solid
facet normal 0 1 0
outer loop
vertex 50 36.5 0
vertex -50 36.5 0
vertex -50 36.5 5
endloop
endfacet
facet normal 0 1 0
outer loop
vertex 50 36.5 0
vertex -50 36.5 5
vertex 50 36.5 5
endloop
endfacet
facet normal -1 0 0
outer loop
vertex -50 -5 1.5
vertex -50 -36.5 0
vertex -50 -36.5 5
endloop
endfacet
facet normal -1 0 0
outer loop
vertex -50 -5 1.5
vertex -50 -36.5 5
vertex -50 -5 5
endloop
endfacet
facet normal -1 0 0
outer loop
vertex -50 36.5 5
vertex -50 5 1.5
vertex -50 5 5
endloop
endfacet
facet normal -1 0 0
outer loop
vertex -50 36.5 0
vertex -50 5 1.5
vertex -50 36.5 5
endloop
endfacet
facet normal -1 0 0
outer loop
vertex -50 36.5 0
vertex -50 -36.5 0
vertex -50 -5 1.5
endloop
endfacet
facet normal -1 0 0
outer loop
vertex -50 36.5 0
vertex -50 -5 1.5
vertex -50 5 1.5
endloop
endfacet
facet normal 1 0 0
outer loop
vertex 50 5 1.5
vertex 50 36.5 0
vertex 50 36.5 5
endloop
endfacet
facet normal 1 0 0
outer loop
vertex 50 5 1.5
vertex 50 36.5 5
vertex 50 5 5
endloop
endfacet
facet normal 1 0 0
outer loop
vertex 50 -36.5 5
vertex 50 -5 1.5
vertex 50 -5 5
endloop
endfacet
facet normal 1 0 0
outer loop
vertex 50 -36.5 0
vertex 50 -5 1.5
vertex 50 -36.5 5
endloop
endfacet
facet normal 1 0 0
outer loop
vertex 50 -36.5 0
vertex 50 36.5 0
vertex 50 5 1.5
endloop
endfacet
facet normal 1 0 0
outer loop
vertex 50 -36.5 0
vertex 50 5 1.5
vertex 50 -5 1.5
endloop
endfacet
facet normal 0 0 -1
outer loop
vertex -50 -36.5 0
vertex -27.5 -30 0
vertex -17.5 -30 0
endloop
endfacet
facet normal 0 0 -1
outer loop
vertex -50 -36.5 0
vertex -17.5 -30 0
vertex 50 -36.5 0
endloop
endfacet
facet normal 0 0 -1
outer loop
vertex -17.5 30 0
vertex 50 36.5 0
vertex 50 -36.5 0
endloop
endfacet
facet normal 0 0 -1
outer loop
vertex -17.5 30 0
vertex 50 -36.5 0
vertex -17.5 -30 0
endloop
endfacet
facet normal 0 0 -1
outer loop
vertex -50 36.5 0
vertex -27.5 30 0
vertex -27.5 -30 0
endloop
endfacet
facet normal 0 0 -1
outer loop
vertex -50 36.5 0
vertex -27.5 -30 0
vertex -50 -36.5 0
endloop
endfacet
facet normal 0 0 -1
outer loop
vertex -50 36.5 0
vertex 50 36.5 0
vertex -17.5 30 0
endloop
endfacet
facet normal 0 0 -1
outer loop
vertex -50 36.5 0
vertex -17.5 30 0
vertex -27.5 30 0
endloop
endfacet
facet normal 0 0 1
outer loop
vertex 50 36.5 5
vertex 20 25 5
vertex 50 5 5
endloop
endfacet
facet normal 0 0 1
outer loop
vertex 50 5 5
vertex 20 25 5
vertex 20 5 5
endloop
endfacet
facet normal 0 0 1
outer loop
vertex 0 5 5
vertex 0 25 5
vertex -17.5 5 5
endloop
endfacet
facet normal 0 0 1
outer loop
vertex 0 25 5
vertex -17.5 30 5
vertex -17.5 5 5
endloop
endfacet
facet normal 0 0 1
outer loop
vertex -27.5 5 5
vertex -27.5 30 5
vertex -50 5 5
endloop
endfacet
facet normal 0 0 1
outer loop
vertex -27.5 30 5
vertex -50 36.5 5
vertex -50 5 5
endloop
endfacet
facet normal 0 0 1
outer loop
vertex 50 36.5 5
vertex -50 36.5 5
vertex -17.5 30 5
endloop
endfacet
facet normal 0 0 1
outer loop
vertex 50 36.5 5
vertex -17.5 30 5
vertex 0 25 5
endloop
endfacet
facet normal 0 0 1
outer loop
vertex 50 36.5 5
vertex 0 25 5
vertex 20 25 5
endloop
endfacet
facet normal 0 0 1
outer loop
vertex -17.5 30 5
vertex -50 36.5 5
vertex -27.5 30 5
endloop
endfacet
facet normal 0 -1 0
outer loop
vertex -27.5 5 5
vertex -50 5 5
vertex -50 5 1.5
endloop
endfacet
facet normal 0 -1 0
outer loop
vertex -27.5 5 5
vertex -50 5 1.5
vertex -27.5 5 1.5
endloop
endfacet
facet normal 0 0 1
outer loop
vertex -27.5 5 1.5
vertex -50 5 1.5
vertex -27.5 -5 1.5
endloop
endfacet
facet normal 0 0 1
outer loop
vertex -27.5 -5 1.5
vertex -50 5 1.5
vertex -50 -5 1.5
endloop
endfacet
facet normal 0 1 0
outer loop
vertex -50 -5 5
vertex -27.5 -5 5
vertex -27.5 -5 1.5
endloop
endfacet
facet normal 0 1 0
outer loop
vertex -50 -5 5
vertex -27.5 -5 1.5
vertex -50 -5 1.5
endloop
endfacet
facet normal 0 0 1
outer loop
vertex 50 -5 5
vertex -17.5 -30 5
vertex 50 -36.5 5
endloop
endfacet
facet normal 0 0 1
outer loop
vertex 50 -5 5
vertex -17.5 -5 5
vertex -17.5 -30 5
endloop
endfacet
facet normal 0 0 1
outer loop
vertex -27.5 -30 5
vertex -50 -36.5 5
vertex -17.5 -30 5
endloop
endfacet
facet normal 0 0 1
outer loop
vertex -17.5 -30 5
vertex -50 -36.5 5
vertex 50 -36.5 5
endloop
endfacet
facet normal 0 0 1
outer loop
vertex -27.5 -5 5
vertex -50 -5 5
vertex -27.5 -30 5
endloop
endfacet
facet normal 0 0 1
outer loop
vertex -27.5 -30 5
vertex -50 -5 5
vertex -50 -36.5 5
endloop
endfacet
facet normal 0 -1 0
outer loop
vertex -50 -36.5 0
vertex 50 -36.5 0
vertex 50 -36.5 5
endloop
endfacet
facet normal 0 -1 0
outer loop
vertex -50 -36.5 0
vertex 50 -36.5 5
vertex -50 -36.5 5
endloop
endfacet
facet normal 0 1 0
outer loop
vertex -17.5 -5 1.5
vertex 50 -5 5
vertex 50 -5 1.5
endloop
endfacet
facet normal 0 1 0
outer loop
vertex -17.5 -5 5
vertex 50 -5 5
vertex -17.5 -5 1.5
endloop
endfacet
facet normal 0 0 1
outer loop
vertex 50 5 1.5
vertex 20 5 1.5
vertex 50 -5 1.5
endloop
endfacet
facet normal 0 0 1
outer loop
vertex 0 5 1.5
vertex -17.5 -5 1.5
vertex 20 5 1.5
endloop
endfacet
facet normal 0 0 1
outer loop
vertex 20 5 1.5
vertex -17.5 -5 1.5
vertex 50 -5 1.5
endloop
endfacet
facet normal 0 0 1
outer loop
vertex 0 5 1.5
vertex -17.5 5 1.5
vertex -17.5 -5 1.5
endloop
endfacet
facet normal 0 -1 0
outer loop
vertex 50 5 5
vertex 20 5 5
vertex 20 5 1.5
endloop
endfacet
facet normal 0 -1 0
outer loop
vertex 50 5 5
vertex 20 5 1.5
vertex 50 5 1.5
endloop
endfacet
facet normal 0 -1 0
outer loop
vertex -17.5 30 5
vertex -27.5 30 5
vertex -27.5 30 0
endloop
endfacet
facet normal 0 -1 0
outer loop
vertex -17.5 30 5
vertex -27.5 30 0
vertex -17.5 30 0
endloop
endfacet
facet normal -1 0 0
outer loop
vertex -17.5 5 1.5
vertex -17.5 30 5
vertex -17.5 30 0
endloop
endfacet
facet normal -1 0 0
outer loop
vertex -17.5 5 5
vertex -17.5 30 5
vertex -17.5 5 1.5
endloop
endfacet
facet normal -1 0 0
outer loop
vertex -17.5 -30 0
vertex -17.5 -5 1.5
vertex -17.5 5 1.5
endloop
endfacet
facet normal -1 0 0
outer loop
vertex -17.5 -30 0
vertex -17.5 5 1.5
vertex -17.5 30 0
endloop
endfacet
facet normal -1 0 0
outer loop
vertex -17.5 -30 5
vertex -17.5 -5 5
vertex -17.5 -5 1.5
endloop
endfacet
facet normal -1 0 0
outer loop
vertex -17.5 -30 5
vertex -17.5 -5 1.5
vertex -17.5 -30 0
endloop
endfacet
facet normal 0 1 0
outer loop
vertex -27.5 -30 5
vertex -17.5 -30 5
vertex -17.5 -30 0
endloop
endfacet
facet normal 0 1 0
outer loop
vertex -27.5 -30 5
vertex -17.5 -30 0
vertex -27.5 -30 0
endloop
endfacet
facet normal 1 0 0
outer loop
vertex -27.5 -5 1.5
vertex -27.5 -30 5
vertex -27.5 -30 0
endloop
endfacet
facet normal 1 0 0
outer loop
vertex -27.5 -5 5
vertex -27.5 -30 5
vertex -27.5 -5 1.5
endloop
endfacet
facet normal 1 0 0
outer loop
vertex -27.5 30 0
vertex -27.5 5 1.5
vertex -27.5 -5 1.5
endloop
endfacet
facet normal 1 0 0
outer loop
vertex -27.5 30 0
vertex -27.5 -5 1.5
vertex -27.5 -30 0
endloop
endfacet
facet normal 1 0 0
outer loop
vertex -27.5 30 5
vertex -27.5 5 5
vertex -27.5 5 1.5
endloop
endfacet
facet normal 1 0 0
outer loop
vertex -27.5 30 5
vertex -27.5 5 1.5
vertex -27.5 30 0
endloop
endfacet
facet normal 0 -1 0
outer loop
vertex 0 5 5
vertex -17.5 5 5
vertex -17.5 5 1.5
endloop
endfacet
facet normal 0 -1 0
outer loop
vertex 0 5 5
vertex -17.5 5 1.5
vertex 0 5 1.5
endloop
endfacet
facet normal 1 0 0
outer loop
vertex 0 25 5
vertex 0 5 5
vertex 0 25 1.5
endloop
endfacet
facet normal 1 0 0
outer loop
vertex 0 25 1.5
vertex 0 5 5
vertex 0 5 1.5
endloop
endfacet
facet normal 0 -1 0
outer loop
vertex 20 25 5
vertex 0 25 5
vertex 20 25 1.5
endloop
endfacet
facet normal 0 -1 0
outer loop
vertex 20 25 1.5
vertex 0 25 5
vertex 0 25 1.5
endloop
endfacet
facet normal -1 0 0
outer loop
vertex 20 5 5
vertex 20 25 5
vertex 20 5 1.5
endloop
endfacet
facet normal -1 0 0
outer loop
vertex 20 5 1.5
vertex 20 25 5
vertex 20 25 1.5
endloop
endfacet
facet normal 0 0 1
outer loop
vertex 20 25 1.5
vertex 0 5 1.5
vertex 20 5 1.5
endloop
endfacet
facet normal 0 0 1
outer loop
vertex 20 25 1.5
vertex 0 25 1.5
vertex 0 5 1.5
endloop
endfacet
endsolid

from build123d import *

# Parameters (mm, degrees)
SKETCH_W        = 100
SKETCH_H        = 73
PAD_DEPTH       = 5
SKETCH001_W     = 22.5
SKETCH001_H     = 10
POCKET_DEPTH    = 3.5
SKETCH002_W     = 10
SKETCH002_H     = 60
POCKET001_DEPTH = 5
SKETCH003_W     = 67.5
SKETCH003_H     = 10
POCKET002_DEPTH = 3.5
SKETCH004_W     = 20
SKETCH004_H     = 20
POCKET003_DEPTH = 3.5


with BuildPart() as part:
    # Sketch → Pad (new body)
    with BuildSketch(Plane.XY):
        Rectangle(SKETCH_W, SKETCH_H)
    extrude(amount=PAD_DEPTH)

    # Sketch001 (on Face6 of Pad) → Pocket (cut)
    with BuildSketch(Plane.XY.offset(5)):
        with Locations((-38.75, 0)):
            Rectangle(SKETCH001_W, SKETCH001_H)
    extrude(amount=-POCKET_DEPTH, mode=Mode.SUBTRACT)

    # Sketch002 (on Face5 of Pocket) → Pocket001 (cut)
    with BuildSketch(Plane.XY.offset(5)):
        with Locations((-22.5, 0)):
            Rectangle(SKETCH002_W, SKETCH002_H)
    extrude(amount=-POCKET001_DEPTH, mode=Mode.SUBTRACT)

    # Sketch003 (on Face5 of Pocket001) → Pocket002 (cut)
    with BuildSketch(Plane.XY.offset(5)):
        with Locations((16.25, 0)):
            Rectangle(SKETCH003_W, SKETCH003_H)
    extrude(amount=-POCKET002_DEPTH, mode=Mode.SUBTRACT)

    # Sketch004 (on Face5 of Pocket002) → Pocket003 (cut)
    with BuildSketch(Plane.XY.offset(5)):
        with Locations((10, 15)):
            Rectangle(SKETCH004_W, SKETCH004_H)
    extrude(amount=-POCKET003_DEPTH, mode=Mode.SUBTRACT)


solid = part.part
